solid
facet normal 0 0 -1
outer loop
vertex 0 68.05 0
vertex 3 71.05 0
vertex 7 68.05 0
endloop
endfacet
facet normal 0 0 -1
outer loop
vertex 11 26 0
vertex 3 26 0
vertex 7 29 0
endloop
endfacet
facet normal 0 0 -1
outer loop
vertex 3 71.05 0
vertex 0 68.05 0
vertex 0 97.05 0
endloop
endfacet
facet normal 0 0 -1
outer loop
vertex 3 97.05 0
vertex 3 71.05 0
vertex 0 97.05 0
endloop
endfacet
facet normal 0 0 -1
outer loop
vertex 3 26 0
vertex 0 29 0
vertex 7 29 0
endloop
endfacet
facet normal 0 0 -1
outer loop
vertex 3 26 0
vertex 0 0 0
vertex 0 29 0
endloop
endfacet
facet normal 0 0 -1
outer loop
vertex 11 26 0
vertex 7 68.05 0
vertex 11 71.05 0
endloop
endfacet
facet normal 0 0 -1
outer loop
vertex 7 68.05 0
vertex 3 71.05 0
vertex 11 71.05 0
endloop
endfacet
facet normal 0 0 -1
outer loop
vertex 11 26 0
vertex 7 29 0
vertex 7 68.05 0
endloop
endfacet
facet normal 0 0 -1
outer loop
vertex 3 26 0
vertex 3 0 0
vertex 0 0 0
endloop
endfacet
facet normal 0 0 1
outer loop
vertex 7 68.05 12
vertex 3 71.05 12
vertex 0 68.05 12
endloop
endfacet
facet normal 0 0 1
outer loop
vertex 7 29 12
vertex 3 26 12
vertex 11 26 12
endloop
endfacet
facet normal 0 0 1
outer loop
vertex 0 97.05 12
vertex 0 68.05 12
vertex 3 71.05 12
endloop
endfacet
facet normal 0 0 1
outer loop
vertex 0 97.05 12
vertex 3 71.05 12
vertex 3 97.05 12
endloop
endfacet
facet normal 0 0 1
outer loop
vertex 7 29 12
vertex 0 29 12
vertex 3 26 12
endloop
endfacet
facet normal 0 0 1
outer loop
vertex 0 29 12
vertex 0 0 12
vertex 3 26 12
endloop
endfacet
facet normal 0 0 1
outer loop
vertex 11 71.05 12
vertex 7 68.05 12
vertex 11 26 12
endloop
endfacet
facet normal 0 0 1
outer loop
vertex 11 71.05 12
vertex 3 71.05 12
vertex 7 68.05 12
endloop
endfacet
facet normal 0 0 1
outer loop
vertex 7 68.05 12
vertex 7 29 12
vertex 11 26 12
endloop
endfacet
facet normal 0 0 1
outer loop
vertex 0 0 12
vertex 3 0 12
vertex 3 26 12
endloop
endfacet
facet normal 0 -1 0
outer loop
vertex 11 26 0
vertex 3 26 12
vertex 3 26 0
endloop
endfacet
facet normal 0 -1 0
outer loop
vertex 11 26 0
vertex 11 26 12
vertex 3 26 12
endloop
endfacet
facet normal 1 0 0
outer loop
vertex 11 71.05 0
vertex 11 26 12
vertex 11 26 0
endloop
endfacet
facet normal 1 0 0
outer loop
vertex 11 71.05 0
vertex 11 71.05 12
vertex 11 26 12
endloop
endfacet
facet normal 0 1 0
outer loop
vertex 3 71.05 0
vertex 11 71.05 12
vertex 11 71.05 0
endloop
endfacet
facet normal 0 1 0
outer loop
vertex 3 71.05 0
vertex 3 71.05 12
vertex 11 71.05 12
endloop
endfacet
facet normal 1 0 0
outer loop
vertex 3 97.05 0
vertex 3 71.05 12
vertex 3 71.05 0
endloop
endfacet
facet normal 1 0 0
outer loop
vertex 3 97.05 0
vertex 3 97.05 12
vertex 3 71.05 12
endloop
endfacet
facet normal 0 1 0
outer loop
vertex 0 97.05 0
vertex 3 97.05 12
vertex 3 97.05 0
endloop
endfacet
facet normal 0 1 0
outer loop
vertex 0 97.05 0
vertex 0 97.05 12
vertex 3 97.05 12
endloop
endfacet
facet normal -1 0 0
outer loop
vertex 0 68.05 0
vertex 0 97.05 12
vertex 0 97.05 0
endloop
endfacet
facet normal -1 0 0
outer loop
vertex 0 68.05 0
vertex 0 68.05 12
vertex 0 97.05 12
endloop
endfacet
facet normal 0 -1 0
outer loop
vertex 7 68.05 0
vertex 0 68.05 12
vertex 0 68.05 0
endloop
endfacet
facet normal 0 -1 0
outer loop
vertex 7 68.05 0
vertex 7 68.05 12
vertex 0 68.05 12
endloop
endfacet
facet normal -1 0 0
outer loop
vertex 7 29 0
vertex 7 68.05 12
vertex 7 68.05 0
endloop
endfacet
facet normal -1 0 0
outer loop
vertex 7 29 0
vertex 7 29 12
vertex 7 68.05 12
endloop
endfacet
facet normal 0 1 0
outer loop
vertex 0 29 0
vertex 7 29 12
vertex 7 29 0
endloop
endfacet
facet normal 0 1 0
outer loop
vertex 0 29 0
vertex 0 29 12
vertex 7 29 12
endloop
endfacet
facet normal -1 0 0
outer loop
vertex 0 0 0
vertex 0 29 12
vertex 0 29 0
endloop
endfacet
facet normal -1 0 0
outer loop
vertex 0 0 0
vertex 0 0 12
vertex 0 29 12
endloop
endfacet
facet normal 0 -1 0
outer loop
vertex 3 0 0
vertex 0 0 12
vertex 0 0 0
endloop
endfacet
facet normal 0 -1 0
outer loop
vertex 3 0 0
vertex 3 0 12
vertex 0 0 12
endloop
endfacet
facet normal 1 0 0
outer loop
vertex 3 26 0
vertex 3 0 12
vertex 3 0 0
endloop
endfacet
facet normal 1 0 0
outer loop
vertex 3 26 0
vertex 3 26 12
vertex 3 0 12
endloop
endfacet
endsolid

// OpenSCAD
linear_extrude(height = 12) {
    difference() {
        // prob better to draw this with polygon ..but....
        square([11,97.05]);
        color("green") translate([3,0,0]) square(26);
        color("green") translate([3,71.05,0]) square(26);
        color("green") translate([-32.05,29,0]) square(39.05);
    }
}
